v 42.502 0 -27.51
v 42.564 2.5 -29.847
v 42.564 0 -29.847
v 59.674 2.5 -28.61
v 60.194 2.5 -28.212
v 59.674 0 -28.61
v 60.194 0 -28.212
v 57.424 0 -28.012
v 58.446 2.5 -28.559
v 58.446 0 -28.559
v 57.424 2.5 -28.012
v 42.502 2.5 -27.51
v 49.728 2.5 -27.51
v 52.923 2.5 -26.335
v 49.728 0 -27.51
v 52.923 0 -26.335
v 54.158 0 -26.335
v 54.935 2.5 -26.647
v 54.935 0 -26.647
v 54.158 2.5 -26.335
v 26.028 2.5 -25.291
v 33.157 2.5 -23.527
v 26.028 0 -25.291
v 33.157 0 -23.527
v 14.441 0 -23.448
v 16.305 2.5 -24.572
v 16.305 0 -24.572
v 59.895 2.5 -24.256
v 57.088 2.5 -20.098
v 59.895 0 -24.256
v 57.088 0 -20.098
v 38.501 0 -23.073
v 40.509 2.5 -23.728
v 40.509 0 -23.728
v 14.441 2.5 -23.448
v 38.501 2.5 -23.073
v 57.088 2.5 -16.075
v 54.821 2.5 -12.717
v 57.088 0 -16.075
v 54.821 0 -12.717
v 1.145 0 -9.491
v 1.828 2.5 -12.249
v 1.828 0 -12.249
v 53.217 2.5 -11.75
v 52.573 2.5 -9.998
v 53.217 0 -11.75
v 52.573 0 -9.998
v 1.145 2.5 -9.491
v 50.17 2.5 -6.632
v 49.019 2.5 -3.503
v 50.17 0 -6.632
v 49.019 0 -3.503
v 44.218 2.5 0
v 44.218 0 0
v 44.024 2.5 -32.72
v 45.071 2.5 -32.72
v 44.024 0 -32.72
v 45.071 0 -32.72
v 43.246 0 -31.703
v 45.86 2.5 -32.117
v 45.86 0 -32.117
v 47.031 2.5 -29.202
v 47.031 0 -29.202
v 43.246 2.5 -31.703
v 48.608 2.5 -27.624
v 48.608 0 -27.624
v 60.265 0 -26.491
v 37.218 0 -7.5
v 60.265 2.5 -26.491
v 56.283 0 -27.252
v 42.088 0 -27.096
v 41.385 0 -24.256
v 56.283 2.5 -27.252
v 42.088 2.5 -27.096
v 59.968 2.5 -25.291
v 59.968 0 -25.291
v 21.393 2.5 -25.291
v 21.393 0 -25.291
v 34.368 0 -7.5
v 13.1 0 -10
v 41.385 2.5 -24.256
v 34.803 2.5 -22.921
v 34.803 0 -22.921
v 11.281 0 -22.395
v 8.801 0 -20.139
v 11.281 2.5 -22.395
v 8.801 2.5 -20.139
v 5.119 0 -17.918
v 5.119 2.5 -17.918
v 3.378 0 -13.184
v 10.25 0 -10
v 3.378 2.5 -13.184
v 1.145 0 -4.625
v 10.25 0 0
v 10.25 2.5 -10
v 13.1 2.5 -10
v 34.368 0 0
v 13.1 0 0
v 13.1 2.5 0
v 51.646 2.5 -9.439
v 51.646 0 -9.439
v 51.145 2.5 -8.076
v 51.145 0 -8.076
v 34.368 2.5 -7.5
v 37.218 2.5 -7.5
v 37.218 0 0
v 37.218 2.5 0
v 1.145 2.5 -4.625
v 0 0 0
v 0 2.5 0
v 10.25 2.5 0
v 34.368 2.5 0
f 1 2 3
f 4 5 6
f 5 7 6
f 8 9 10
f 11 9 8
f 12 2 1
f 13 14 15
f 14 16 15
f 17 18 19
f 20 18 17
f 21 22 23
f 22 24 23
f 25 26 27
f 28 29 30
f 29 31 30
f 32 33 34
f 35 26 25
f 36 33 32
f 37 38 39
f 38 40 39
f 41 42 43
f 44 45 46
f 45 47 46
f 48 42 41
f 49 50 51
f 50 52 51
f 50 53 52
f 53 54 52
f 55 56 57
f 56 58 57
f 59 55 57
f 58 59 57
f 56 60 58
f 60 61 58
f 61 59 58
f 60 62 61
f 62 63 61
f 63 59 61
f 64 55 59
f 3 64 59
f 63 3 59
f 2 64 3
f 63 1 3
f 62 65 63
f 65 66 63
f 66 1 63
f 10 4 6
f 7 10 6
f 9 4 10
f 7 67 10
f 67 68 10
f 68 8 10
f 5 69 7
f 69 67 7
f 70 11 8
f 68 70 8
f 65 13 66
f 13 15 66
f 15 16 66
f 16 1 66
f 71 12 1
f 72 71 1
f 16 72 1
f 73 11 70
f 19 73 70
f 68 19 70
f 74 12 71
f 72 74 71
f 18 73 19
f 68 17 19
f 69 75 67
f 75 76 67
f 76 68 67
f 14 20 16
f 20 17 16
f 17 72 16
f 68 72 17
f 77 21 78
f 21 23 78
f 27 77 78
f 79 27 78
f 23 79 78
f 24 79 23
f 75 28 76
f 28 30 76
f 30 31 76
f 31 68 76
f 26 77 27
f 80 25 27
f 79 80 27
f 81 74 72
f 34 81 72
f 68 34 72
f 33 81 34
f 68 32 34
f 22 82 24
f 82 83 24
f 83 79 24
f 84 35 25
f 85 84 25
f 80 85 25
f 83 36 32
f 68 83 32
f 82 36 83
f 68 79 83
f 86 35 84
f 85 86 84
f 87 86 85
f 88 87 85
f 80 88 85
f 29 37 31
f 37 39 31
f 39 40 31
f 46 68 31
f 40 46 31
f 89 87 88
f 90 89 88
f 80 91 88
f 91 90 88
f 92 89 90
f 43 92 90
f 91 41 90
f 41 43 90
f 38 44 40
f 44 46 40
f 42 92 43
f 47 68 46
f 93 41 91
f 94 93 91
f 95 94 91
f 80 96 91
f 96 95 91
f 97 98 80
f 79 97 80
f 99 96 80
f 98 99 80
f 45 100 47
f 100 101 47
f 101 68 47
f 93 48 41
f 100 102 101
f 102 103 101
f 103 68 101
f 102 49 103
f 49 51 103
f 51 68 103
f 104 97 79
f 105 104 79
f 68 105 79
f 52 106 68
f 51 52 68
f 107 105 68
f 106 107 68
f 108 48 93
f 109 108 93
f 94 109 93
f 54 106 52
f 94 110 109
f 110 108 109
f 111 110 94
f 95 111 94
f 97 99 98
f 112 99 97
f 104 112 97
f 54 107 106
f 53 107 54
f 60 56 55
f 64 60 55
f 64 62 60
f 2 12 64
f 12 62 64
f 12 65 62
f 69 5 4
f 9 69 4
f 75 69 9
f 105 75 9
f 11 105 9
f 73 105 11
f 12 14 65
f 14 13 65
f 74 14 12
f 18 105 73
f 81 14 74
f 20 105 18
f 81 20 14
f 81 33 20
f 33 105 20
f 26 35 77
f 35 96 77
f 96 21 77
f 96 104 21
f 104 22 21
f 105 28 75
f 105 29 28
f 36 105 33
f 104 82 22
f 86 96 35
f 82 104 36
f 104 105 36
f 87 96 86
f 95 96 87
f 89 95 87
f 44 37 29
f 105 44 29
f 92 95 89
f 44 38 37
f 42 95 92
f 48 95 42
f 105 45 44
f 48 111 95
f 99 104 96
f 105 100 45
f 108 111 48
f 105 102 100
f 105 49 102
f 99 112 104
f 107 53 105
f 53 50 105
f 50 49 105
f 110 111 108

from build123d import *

# Parameters (mm, degrees)
BOSS_EXTRUDE4_DEPTH = 2.5
SKETCH3_W           = 2.85
SKETCH3_H           = 2.5
CUT_EXTRUDE1_DEPTH  = 10
SKETCH4_W           = 2.85
SKETCH4_H           = 2.5
CUT_EXTRUDE2_DEPTH  = 7.5


with BuildPart() as part:
    # Sketch2 → Boss-Extrude4 (new body)
    with BuildSketch(Plane(origin=(0, 0, 0), x_dir=(1, 0, 0), z_dir=(0, 1, 0))):
        Polygon((0, 0), (0.589412548, 2.381206373), (1.144861346, 4.62520037), (1.144861346, 9.49123355), (1.827568156, 12.249345527), (3.377711093, 13.184348171), (5.118763194, 17.917932427), (8.800884637, 20.138884573), (11.280786748, 22.394616205), (14.440798826, 23.447953565), (16.304846177, 24.572294527), (21.3928254, 25.291293944), (26.027509782, 25.291293944), (31.203392004, 24.010124046), (33.156993004, 23.526555316), (34.802606354, 22.921284885), (38.501454152, 23.073163176), (40.508590996, 23.727616723), (41.385127416, 24.256318851), (42.088080237, 27.096224014), (42.502286902, 27.510430679), (42.564029409, 29.84745559), (43.246427291, 31.702763579), (44.023704459, 32.719500007), (45.070889284, 32.719500007), (45.859589446, 32.116552566), (46.507843196, 30.50318738), (47.03069527, 29.201920191), (48.220652238, 28.011963224), (48.608289607, 27.624325855), (49.727600372, 27.510430679), (51.646333081, 26.804704651), (52.922878944, 26.335180347), (54.158394758, 26.335180347), (54.935057216, 26.647245064), (56.282727814, 27.252145785), (57.423923636, 28.011963224), (58.445785658, 28.559225004), (59.674350615, 28.609671077), (60.194070138, 28.212354617), (60.2647419, 26.491212706), (59.967729771, 25.291293944), (59.894673222, 24.256318851), (58.99338734, 22.921284885), (57.847567942, 21.224034494), (57.087511308, 20.098197019), (57.087511308, 16.074592048), (56.063262547, 14.557418737), (55.70254482, 14.023103901), (55.136298029, 13.184348171), (54.820686328, 12.716846849), (53.217353691, 11.749761674), (52.573042644, 9.998004432), (51.646333081, 9.439039274), (51.144861346, 8.07563452), (50.17002425, 6.631652471), (49.432034292, 4.62520037), (49.01935436, 3.503203372), (44.218024527, 0), align=None)
    extrude(amount=BOSS_EXTRUDE4_DEPTH)

    # Sketch3 → Cut-Extrude1 (cut)
    with BuildSketch(Plane.XY):
        with Locations((11.675, 1.25)):
            Rectangle(SKETCH3_W, SKETCH3_H)
    extrude(amount=-CUT_EXTRUDE1_DEPTH, mode=Mode.SUBTRACT)

    # Sketch4 → Cut-Extrude2 (cut)
    with BuildSketch(Plane.XY):
        with Locations((35.793024527, 1.25)):
            Rectangle(SKETCH4_W, SKETCH4_H)
    extrude(amount=-CUT_EXTRUDE2_DEPTH, mode=Mode.SUBTRACT)


solid = part.part
